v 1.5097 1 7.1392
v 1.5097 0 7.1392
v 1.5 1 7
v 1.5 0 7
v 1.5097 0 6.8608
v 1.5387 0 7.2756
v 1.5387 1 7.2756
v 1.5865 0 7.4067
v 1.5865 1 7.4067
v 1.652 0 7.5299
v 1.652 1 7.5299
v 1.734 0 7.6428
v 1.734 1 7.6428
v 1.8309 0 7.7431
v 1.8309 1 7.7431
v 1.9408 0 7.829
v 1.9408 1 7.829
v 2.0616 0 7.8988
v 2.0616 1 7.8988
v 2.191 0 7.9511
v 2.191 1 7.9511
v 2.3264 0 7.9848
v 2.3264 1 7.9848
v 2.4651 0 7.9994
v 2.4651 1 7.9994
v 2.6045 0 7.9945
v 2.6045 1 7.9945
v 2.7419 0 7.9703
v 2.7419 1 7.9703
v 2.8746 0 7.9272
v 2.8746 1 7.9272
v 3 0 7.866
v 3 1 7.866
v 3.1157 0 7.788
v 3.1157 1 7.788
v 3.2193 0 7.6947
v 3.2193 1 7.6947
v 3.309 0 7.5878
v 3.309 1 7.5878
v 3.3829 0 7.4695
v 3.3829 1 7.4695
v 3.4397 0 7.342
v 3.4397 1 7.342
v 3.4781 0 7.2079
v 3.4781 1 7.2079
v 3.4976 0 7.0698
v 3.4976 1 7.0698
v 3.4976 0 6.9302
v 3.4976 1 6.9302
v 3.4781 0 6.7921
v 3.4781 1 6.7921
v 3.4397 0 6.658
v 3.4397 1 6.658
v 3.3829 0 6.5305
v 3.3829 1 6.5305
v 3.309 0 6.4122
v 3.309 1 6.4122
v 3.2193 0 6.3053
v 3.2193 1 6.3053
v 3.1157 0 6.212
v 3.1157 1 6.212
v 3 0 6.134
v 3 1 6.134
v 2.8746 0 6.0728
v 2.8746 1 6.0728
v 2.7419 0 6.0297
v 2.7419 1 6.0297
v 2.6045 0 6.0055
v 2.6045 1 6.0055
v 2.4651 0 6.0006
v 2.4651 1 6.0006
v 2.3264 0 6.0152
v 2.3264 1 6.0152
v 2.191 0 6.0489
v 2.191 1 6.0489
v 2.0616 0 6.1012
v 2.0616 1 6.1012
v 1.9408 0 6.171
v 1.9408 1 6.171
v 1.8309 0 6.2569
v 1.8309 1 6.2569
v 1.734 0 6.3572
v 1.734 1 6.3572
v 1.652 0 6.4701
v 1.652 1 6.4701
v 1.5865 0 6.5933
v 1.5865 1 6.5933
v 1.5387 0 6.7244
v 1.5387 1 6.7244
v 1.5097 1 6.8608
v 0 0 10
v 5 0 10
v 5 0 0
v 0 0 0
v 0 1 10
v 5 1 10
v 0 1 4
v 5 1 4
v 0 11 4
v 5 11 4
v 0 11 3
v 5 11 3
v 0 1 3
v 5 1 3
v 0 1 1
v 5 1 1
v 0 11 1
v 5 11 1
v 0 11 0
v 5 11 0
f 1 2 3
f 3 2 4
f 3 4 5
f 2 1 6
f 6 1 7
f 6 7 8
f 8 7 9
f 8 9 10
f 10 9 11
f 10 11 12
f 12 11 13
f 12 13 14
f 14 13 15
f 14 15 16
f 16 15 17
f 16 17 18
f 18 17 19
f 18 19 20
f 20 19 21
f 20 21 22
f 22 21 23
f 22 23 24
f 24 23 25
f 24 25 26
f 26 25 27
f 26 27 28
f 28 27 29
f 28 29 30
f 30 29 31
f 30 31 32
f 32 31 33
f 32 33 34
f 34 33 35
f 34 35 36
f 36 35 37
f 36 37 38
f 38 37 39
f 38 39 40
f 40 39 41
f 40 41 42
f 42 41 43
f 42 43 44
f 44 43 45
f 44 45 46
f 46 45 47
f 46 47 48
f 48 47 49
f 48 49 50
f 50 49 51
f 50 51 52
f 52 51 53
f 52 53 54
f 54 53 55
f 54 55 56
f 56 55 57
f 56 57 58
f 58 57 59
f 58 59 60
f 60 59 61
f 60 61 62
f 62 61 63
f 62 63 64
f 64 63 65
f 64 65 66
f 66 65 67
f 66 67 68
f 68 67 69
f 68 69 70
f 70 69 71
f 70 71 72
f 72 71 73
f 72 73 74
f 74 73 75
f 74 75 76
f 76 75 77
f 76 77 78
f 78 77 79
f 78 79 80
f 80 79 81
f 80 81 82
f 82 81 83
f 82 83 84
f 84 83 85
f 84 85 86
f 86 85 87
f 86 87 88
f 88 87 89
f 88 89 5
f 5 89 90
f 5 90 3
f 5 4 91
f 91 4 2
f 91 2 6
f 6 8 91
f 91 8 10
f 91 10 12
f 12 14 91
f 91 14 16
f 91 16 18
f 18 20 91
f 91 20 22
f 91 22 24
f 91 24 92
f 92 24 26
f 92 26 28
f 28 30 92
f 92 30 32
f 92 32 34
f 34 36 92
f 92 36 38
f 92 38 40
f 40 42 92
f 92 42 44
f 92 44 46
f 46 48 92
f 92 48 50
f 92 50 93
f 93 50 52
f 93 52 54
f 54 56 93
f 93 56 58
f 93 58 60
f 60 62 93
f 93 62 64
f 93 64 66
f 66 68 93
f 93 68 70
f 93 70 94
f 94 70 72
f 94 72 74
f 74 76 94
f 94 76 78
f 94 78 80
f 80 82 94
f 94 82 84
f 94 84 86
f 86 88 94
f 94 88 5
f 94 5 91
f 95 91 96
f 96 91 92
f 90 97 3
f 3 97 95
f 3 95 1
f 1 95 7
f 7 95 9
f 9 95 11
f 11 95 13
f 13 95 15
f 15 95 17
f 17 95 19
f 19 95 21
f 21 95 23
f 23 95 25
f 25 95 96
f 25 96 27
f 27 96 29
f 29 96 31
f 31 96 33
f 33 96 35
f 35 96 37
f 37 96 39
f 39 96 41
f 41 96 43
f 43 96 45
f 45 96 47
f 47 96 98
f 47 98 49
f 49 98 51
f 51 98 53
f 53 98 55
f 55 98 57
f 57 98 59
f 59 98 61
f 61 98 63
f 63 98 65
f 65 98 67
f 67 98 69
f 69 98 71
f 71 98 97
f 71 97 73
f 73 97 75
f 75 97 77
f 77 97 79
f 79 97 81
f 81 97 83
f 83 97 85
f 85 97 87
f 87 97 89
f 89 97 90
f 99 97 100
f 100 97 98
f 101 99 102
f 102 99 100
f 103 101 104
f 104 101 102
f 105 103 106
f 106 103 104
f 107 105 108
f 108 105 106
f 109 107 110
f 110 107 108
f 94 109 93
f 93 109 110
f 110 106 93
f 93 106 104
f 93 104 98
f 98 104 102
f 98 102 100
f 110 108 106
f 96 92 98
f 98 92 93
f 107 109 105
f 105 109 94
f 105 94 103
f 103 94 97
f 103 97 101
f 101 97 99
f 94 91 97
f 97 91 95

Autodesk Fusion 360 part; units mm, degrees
sketch "Sketch1" plane through (0, 0, 0) normal (0, 1, 0) x (1, 0, 0)
  line L0 (0, 0) -> (5, 0)
  line L1 (5, 0) -> (5, -10)
  line L2 (5, -10) -> (0, -10)
  line L3 (0, -10) -> (0, 0)
  line L4 (0, -1) -> (5, -1)
  line L5 (0, -3) -> (5, -3)
  line L6 (0, -4) -> (5, -4)
  circle A0 centre (2.5, -7) radius 1
  dimension "d1" = 10
  dimension "d2" = 5
  dimension "d3" = 2
  dimension "d4" = 1
  dimension "d5" = 1
  dimension "d6" = 2
ref_plane "WorkPlane1" through (2.5, 5, 3.5) normal (0, 1, 0) x (1, 0, 0)
ref_plane "WorkPlane2" through (2.5, 5, 0.5) normal (0, 1, 0) x (1, 0, 0)
ref_plane "WorkPlane3" through (2.5, 1, 2) normal (0, 1, 0) x (1, 0, 0)
ref_plane "WorkPlane4" through (2.5, 1, 7) normal (0, 1, 0) x (1, 0, 0)
sketch "Sketch2" plane through (0, 0, 0) normal (1, 0, 0) x (0, 0, -1)
  line L0 (-1, 11) -> (-1, 1)
  line L1 (-1, 1) -> (-3, 1)
  line L2 (-3, 1) -> (-3, 11)
  line L3 (-3, 11) -> (-4, 11)
  line L4 (-4, 11) -> (-4, 1)
  line L5 (-4, 1) -> (-10, 1)
  line L6 (-10, 1) -> (-10, 0)
  line L7 (-10, 0) -> (0, 0)
  line L8 (0, 11) -> (-1, 11)
  line L9 (0, 0) -> (-10, 0)
  line L10 (0, 11) -> (0, 1)
  line L11 (0, 1) -> (0, 0)
  line L12 (0, 1) -> (0, 11)
  point P0 (-10, 0)
  dimension "d11" = 10
  dimension "d12" = 2
  dimension "d13" = 10
  dimension "d14" = 1
  dimension "d15" = 1
  dimension "d17" = 6
  dimension "d18" = 1
  dimension "d20" = 1
  dimension "d21" = 10
extrude "Extrude1" add sketch "Sketch2" along normal blind 5
extrude "Extrude2" cut sketch "Sketch1" along normal blind 1 contours A0
